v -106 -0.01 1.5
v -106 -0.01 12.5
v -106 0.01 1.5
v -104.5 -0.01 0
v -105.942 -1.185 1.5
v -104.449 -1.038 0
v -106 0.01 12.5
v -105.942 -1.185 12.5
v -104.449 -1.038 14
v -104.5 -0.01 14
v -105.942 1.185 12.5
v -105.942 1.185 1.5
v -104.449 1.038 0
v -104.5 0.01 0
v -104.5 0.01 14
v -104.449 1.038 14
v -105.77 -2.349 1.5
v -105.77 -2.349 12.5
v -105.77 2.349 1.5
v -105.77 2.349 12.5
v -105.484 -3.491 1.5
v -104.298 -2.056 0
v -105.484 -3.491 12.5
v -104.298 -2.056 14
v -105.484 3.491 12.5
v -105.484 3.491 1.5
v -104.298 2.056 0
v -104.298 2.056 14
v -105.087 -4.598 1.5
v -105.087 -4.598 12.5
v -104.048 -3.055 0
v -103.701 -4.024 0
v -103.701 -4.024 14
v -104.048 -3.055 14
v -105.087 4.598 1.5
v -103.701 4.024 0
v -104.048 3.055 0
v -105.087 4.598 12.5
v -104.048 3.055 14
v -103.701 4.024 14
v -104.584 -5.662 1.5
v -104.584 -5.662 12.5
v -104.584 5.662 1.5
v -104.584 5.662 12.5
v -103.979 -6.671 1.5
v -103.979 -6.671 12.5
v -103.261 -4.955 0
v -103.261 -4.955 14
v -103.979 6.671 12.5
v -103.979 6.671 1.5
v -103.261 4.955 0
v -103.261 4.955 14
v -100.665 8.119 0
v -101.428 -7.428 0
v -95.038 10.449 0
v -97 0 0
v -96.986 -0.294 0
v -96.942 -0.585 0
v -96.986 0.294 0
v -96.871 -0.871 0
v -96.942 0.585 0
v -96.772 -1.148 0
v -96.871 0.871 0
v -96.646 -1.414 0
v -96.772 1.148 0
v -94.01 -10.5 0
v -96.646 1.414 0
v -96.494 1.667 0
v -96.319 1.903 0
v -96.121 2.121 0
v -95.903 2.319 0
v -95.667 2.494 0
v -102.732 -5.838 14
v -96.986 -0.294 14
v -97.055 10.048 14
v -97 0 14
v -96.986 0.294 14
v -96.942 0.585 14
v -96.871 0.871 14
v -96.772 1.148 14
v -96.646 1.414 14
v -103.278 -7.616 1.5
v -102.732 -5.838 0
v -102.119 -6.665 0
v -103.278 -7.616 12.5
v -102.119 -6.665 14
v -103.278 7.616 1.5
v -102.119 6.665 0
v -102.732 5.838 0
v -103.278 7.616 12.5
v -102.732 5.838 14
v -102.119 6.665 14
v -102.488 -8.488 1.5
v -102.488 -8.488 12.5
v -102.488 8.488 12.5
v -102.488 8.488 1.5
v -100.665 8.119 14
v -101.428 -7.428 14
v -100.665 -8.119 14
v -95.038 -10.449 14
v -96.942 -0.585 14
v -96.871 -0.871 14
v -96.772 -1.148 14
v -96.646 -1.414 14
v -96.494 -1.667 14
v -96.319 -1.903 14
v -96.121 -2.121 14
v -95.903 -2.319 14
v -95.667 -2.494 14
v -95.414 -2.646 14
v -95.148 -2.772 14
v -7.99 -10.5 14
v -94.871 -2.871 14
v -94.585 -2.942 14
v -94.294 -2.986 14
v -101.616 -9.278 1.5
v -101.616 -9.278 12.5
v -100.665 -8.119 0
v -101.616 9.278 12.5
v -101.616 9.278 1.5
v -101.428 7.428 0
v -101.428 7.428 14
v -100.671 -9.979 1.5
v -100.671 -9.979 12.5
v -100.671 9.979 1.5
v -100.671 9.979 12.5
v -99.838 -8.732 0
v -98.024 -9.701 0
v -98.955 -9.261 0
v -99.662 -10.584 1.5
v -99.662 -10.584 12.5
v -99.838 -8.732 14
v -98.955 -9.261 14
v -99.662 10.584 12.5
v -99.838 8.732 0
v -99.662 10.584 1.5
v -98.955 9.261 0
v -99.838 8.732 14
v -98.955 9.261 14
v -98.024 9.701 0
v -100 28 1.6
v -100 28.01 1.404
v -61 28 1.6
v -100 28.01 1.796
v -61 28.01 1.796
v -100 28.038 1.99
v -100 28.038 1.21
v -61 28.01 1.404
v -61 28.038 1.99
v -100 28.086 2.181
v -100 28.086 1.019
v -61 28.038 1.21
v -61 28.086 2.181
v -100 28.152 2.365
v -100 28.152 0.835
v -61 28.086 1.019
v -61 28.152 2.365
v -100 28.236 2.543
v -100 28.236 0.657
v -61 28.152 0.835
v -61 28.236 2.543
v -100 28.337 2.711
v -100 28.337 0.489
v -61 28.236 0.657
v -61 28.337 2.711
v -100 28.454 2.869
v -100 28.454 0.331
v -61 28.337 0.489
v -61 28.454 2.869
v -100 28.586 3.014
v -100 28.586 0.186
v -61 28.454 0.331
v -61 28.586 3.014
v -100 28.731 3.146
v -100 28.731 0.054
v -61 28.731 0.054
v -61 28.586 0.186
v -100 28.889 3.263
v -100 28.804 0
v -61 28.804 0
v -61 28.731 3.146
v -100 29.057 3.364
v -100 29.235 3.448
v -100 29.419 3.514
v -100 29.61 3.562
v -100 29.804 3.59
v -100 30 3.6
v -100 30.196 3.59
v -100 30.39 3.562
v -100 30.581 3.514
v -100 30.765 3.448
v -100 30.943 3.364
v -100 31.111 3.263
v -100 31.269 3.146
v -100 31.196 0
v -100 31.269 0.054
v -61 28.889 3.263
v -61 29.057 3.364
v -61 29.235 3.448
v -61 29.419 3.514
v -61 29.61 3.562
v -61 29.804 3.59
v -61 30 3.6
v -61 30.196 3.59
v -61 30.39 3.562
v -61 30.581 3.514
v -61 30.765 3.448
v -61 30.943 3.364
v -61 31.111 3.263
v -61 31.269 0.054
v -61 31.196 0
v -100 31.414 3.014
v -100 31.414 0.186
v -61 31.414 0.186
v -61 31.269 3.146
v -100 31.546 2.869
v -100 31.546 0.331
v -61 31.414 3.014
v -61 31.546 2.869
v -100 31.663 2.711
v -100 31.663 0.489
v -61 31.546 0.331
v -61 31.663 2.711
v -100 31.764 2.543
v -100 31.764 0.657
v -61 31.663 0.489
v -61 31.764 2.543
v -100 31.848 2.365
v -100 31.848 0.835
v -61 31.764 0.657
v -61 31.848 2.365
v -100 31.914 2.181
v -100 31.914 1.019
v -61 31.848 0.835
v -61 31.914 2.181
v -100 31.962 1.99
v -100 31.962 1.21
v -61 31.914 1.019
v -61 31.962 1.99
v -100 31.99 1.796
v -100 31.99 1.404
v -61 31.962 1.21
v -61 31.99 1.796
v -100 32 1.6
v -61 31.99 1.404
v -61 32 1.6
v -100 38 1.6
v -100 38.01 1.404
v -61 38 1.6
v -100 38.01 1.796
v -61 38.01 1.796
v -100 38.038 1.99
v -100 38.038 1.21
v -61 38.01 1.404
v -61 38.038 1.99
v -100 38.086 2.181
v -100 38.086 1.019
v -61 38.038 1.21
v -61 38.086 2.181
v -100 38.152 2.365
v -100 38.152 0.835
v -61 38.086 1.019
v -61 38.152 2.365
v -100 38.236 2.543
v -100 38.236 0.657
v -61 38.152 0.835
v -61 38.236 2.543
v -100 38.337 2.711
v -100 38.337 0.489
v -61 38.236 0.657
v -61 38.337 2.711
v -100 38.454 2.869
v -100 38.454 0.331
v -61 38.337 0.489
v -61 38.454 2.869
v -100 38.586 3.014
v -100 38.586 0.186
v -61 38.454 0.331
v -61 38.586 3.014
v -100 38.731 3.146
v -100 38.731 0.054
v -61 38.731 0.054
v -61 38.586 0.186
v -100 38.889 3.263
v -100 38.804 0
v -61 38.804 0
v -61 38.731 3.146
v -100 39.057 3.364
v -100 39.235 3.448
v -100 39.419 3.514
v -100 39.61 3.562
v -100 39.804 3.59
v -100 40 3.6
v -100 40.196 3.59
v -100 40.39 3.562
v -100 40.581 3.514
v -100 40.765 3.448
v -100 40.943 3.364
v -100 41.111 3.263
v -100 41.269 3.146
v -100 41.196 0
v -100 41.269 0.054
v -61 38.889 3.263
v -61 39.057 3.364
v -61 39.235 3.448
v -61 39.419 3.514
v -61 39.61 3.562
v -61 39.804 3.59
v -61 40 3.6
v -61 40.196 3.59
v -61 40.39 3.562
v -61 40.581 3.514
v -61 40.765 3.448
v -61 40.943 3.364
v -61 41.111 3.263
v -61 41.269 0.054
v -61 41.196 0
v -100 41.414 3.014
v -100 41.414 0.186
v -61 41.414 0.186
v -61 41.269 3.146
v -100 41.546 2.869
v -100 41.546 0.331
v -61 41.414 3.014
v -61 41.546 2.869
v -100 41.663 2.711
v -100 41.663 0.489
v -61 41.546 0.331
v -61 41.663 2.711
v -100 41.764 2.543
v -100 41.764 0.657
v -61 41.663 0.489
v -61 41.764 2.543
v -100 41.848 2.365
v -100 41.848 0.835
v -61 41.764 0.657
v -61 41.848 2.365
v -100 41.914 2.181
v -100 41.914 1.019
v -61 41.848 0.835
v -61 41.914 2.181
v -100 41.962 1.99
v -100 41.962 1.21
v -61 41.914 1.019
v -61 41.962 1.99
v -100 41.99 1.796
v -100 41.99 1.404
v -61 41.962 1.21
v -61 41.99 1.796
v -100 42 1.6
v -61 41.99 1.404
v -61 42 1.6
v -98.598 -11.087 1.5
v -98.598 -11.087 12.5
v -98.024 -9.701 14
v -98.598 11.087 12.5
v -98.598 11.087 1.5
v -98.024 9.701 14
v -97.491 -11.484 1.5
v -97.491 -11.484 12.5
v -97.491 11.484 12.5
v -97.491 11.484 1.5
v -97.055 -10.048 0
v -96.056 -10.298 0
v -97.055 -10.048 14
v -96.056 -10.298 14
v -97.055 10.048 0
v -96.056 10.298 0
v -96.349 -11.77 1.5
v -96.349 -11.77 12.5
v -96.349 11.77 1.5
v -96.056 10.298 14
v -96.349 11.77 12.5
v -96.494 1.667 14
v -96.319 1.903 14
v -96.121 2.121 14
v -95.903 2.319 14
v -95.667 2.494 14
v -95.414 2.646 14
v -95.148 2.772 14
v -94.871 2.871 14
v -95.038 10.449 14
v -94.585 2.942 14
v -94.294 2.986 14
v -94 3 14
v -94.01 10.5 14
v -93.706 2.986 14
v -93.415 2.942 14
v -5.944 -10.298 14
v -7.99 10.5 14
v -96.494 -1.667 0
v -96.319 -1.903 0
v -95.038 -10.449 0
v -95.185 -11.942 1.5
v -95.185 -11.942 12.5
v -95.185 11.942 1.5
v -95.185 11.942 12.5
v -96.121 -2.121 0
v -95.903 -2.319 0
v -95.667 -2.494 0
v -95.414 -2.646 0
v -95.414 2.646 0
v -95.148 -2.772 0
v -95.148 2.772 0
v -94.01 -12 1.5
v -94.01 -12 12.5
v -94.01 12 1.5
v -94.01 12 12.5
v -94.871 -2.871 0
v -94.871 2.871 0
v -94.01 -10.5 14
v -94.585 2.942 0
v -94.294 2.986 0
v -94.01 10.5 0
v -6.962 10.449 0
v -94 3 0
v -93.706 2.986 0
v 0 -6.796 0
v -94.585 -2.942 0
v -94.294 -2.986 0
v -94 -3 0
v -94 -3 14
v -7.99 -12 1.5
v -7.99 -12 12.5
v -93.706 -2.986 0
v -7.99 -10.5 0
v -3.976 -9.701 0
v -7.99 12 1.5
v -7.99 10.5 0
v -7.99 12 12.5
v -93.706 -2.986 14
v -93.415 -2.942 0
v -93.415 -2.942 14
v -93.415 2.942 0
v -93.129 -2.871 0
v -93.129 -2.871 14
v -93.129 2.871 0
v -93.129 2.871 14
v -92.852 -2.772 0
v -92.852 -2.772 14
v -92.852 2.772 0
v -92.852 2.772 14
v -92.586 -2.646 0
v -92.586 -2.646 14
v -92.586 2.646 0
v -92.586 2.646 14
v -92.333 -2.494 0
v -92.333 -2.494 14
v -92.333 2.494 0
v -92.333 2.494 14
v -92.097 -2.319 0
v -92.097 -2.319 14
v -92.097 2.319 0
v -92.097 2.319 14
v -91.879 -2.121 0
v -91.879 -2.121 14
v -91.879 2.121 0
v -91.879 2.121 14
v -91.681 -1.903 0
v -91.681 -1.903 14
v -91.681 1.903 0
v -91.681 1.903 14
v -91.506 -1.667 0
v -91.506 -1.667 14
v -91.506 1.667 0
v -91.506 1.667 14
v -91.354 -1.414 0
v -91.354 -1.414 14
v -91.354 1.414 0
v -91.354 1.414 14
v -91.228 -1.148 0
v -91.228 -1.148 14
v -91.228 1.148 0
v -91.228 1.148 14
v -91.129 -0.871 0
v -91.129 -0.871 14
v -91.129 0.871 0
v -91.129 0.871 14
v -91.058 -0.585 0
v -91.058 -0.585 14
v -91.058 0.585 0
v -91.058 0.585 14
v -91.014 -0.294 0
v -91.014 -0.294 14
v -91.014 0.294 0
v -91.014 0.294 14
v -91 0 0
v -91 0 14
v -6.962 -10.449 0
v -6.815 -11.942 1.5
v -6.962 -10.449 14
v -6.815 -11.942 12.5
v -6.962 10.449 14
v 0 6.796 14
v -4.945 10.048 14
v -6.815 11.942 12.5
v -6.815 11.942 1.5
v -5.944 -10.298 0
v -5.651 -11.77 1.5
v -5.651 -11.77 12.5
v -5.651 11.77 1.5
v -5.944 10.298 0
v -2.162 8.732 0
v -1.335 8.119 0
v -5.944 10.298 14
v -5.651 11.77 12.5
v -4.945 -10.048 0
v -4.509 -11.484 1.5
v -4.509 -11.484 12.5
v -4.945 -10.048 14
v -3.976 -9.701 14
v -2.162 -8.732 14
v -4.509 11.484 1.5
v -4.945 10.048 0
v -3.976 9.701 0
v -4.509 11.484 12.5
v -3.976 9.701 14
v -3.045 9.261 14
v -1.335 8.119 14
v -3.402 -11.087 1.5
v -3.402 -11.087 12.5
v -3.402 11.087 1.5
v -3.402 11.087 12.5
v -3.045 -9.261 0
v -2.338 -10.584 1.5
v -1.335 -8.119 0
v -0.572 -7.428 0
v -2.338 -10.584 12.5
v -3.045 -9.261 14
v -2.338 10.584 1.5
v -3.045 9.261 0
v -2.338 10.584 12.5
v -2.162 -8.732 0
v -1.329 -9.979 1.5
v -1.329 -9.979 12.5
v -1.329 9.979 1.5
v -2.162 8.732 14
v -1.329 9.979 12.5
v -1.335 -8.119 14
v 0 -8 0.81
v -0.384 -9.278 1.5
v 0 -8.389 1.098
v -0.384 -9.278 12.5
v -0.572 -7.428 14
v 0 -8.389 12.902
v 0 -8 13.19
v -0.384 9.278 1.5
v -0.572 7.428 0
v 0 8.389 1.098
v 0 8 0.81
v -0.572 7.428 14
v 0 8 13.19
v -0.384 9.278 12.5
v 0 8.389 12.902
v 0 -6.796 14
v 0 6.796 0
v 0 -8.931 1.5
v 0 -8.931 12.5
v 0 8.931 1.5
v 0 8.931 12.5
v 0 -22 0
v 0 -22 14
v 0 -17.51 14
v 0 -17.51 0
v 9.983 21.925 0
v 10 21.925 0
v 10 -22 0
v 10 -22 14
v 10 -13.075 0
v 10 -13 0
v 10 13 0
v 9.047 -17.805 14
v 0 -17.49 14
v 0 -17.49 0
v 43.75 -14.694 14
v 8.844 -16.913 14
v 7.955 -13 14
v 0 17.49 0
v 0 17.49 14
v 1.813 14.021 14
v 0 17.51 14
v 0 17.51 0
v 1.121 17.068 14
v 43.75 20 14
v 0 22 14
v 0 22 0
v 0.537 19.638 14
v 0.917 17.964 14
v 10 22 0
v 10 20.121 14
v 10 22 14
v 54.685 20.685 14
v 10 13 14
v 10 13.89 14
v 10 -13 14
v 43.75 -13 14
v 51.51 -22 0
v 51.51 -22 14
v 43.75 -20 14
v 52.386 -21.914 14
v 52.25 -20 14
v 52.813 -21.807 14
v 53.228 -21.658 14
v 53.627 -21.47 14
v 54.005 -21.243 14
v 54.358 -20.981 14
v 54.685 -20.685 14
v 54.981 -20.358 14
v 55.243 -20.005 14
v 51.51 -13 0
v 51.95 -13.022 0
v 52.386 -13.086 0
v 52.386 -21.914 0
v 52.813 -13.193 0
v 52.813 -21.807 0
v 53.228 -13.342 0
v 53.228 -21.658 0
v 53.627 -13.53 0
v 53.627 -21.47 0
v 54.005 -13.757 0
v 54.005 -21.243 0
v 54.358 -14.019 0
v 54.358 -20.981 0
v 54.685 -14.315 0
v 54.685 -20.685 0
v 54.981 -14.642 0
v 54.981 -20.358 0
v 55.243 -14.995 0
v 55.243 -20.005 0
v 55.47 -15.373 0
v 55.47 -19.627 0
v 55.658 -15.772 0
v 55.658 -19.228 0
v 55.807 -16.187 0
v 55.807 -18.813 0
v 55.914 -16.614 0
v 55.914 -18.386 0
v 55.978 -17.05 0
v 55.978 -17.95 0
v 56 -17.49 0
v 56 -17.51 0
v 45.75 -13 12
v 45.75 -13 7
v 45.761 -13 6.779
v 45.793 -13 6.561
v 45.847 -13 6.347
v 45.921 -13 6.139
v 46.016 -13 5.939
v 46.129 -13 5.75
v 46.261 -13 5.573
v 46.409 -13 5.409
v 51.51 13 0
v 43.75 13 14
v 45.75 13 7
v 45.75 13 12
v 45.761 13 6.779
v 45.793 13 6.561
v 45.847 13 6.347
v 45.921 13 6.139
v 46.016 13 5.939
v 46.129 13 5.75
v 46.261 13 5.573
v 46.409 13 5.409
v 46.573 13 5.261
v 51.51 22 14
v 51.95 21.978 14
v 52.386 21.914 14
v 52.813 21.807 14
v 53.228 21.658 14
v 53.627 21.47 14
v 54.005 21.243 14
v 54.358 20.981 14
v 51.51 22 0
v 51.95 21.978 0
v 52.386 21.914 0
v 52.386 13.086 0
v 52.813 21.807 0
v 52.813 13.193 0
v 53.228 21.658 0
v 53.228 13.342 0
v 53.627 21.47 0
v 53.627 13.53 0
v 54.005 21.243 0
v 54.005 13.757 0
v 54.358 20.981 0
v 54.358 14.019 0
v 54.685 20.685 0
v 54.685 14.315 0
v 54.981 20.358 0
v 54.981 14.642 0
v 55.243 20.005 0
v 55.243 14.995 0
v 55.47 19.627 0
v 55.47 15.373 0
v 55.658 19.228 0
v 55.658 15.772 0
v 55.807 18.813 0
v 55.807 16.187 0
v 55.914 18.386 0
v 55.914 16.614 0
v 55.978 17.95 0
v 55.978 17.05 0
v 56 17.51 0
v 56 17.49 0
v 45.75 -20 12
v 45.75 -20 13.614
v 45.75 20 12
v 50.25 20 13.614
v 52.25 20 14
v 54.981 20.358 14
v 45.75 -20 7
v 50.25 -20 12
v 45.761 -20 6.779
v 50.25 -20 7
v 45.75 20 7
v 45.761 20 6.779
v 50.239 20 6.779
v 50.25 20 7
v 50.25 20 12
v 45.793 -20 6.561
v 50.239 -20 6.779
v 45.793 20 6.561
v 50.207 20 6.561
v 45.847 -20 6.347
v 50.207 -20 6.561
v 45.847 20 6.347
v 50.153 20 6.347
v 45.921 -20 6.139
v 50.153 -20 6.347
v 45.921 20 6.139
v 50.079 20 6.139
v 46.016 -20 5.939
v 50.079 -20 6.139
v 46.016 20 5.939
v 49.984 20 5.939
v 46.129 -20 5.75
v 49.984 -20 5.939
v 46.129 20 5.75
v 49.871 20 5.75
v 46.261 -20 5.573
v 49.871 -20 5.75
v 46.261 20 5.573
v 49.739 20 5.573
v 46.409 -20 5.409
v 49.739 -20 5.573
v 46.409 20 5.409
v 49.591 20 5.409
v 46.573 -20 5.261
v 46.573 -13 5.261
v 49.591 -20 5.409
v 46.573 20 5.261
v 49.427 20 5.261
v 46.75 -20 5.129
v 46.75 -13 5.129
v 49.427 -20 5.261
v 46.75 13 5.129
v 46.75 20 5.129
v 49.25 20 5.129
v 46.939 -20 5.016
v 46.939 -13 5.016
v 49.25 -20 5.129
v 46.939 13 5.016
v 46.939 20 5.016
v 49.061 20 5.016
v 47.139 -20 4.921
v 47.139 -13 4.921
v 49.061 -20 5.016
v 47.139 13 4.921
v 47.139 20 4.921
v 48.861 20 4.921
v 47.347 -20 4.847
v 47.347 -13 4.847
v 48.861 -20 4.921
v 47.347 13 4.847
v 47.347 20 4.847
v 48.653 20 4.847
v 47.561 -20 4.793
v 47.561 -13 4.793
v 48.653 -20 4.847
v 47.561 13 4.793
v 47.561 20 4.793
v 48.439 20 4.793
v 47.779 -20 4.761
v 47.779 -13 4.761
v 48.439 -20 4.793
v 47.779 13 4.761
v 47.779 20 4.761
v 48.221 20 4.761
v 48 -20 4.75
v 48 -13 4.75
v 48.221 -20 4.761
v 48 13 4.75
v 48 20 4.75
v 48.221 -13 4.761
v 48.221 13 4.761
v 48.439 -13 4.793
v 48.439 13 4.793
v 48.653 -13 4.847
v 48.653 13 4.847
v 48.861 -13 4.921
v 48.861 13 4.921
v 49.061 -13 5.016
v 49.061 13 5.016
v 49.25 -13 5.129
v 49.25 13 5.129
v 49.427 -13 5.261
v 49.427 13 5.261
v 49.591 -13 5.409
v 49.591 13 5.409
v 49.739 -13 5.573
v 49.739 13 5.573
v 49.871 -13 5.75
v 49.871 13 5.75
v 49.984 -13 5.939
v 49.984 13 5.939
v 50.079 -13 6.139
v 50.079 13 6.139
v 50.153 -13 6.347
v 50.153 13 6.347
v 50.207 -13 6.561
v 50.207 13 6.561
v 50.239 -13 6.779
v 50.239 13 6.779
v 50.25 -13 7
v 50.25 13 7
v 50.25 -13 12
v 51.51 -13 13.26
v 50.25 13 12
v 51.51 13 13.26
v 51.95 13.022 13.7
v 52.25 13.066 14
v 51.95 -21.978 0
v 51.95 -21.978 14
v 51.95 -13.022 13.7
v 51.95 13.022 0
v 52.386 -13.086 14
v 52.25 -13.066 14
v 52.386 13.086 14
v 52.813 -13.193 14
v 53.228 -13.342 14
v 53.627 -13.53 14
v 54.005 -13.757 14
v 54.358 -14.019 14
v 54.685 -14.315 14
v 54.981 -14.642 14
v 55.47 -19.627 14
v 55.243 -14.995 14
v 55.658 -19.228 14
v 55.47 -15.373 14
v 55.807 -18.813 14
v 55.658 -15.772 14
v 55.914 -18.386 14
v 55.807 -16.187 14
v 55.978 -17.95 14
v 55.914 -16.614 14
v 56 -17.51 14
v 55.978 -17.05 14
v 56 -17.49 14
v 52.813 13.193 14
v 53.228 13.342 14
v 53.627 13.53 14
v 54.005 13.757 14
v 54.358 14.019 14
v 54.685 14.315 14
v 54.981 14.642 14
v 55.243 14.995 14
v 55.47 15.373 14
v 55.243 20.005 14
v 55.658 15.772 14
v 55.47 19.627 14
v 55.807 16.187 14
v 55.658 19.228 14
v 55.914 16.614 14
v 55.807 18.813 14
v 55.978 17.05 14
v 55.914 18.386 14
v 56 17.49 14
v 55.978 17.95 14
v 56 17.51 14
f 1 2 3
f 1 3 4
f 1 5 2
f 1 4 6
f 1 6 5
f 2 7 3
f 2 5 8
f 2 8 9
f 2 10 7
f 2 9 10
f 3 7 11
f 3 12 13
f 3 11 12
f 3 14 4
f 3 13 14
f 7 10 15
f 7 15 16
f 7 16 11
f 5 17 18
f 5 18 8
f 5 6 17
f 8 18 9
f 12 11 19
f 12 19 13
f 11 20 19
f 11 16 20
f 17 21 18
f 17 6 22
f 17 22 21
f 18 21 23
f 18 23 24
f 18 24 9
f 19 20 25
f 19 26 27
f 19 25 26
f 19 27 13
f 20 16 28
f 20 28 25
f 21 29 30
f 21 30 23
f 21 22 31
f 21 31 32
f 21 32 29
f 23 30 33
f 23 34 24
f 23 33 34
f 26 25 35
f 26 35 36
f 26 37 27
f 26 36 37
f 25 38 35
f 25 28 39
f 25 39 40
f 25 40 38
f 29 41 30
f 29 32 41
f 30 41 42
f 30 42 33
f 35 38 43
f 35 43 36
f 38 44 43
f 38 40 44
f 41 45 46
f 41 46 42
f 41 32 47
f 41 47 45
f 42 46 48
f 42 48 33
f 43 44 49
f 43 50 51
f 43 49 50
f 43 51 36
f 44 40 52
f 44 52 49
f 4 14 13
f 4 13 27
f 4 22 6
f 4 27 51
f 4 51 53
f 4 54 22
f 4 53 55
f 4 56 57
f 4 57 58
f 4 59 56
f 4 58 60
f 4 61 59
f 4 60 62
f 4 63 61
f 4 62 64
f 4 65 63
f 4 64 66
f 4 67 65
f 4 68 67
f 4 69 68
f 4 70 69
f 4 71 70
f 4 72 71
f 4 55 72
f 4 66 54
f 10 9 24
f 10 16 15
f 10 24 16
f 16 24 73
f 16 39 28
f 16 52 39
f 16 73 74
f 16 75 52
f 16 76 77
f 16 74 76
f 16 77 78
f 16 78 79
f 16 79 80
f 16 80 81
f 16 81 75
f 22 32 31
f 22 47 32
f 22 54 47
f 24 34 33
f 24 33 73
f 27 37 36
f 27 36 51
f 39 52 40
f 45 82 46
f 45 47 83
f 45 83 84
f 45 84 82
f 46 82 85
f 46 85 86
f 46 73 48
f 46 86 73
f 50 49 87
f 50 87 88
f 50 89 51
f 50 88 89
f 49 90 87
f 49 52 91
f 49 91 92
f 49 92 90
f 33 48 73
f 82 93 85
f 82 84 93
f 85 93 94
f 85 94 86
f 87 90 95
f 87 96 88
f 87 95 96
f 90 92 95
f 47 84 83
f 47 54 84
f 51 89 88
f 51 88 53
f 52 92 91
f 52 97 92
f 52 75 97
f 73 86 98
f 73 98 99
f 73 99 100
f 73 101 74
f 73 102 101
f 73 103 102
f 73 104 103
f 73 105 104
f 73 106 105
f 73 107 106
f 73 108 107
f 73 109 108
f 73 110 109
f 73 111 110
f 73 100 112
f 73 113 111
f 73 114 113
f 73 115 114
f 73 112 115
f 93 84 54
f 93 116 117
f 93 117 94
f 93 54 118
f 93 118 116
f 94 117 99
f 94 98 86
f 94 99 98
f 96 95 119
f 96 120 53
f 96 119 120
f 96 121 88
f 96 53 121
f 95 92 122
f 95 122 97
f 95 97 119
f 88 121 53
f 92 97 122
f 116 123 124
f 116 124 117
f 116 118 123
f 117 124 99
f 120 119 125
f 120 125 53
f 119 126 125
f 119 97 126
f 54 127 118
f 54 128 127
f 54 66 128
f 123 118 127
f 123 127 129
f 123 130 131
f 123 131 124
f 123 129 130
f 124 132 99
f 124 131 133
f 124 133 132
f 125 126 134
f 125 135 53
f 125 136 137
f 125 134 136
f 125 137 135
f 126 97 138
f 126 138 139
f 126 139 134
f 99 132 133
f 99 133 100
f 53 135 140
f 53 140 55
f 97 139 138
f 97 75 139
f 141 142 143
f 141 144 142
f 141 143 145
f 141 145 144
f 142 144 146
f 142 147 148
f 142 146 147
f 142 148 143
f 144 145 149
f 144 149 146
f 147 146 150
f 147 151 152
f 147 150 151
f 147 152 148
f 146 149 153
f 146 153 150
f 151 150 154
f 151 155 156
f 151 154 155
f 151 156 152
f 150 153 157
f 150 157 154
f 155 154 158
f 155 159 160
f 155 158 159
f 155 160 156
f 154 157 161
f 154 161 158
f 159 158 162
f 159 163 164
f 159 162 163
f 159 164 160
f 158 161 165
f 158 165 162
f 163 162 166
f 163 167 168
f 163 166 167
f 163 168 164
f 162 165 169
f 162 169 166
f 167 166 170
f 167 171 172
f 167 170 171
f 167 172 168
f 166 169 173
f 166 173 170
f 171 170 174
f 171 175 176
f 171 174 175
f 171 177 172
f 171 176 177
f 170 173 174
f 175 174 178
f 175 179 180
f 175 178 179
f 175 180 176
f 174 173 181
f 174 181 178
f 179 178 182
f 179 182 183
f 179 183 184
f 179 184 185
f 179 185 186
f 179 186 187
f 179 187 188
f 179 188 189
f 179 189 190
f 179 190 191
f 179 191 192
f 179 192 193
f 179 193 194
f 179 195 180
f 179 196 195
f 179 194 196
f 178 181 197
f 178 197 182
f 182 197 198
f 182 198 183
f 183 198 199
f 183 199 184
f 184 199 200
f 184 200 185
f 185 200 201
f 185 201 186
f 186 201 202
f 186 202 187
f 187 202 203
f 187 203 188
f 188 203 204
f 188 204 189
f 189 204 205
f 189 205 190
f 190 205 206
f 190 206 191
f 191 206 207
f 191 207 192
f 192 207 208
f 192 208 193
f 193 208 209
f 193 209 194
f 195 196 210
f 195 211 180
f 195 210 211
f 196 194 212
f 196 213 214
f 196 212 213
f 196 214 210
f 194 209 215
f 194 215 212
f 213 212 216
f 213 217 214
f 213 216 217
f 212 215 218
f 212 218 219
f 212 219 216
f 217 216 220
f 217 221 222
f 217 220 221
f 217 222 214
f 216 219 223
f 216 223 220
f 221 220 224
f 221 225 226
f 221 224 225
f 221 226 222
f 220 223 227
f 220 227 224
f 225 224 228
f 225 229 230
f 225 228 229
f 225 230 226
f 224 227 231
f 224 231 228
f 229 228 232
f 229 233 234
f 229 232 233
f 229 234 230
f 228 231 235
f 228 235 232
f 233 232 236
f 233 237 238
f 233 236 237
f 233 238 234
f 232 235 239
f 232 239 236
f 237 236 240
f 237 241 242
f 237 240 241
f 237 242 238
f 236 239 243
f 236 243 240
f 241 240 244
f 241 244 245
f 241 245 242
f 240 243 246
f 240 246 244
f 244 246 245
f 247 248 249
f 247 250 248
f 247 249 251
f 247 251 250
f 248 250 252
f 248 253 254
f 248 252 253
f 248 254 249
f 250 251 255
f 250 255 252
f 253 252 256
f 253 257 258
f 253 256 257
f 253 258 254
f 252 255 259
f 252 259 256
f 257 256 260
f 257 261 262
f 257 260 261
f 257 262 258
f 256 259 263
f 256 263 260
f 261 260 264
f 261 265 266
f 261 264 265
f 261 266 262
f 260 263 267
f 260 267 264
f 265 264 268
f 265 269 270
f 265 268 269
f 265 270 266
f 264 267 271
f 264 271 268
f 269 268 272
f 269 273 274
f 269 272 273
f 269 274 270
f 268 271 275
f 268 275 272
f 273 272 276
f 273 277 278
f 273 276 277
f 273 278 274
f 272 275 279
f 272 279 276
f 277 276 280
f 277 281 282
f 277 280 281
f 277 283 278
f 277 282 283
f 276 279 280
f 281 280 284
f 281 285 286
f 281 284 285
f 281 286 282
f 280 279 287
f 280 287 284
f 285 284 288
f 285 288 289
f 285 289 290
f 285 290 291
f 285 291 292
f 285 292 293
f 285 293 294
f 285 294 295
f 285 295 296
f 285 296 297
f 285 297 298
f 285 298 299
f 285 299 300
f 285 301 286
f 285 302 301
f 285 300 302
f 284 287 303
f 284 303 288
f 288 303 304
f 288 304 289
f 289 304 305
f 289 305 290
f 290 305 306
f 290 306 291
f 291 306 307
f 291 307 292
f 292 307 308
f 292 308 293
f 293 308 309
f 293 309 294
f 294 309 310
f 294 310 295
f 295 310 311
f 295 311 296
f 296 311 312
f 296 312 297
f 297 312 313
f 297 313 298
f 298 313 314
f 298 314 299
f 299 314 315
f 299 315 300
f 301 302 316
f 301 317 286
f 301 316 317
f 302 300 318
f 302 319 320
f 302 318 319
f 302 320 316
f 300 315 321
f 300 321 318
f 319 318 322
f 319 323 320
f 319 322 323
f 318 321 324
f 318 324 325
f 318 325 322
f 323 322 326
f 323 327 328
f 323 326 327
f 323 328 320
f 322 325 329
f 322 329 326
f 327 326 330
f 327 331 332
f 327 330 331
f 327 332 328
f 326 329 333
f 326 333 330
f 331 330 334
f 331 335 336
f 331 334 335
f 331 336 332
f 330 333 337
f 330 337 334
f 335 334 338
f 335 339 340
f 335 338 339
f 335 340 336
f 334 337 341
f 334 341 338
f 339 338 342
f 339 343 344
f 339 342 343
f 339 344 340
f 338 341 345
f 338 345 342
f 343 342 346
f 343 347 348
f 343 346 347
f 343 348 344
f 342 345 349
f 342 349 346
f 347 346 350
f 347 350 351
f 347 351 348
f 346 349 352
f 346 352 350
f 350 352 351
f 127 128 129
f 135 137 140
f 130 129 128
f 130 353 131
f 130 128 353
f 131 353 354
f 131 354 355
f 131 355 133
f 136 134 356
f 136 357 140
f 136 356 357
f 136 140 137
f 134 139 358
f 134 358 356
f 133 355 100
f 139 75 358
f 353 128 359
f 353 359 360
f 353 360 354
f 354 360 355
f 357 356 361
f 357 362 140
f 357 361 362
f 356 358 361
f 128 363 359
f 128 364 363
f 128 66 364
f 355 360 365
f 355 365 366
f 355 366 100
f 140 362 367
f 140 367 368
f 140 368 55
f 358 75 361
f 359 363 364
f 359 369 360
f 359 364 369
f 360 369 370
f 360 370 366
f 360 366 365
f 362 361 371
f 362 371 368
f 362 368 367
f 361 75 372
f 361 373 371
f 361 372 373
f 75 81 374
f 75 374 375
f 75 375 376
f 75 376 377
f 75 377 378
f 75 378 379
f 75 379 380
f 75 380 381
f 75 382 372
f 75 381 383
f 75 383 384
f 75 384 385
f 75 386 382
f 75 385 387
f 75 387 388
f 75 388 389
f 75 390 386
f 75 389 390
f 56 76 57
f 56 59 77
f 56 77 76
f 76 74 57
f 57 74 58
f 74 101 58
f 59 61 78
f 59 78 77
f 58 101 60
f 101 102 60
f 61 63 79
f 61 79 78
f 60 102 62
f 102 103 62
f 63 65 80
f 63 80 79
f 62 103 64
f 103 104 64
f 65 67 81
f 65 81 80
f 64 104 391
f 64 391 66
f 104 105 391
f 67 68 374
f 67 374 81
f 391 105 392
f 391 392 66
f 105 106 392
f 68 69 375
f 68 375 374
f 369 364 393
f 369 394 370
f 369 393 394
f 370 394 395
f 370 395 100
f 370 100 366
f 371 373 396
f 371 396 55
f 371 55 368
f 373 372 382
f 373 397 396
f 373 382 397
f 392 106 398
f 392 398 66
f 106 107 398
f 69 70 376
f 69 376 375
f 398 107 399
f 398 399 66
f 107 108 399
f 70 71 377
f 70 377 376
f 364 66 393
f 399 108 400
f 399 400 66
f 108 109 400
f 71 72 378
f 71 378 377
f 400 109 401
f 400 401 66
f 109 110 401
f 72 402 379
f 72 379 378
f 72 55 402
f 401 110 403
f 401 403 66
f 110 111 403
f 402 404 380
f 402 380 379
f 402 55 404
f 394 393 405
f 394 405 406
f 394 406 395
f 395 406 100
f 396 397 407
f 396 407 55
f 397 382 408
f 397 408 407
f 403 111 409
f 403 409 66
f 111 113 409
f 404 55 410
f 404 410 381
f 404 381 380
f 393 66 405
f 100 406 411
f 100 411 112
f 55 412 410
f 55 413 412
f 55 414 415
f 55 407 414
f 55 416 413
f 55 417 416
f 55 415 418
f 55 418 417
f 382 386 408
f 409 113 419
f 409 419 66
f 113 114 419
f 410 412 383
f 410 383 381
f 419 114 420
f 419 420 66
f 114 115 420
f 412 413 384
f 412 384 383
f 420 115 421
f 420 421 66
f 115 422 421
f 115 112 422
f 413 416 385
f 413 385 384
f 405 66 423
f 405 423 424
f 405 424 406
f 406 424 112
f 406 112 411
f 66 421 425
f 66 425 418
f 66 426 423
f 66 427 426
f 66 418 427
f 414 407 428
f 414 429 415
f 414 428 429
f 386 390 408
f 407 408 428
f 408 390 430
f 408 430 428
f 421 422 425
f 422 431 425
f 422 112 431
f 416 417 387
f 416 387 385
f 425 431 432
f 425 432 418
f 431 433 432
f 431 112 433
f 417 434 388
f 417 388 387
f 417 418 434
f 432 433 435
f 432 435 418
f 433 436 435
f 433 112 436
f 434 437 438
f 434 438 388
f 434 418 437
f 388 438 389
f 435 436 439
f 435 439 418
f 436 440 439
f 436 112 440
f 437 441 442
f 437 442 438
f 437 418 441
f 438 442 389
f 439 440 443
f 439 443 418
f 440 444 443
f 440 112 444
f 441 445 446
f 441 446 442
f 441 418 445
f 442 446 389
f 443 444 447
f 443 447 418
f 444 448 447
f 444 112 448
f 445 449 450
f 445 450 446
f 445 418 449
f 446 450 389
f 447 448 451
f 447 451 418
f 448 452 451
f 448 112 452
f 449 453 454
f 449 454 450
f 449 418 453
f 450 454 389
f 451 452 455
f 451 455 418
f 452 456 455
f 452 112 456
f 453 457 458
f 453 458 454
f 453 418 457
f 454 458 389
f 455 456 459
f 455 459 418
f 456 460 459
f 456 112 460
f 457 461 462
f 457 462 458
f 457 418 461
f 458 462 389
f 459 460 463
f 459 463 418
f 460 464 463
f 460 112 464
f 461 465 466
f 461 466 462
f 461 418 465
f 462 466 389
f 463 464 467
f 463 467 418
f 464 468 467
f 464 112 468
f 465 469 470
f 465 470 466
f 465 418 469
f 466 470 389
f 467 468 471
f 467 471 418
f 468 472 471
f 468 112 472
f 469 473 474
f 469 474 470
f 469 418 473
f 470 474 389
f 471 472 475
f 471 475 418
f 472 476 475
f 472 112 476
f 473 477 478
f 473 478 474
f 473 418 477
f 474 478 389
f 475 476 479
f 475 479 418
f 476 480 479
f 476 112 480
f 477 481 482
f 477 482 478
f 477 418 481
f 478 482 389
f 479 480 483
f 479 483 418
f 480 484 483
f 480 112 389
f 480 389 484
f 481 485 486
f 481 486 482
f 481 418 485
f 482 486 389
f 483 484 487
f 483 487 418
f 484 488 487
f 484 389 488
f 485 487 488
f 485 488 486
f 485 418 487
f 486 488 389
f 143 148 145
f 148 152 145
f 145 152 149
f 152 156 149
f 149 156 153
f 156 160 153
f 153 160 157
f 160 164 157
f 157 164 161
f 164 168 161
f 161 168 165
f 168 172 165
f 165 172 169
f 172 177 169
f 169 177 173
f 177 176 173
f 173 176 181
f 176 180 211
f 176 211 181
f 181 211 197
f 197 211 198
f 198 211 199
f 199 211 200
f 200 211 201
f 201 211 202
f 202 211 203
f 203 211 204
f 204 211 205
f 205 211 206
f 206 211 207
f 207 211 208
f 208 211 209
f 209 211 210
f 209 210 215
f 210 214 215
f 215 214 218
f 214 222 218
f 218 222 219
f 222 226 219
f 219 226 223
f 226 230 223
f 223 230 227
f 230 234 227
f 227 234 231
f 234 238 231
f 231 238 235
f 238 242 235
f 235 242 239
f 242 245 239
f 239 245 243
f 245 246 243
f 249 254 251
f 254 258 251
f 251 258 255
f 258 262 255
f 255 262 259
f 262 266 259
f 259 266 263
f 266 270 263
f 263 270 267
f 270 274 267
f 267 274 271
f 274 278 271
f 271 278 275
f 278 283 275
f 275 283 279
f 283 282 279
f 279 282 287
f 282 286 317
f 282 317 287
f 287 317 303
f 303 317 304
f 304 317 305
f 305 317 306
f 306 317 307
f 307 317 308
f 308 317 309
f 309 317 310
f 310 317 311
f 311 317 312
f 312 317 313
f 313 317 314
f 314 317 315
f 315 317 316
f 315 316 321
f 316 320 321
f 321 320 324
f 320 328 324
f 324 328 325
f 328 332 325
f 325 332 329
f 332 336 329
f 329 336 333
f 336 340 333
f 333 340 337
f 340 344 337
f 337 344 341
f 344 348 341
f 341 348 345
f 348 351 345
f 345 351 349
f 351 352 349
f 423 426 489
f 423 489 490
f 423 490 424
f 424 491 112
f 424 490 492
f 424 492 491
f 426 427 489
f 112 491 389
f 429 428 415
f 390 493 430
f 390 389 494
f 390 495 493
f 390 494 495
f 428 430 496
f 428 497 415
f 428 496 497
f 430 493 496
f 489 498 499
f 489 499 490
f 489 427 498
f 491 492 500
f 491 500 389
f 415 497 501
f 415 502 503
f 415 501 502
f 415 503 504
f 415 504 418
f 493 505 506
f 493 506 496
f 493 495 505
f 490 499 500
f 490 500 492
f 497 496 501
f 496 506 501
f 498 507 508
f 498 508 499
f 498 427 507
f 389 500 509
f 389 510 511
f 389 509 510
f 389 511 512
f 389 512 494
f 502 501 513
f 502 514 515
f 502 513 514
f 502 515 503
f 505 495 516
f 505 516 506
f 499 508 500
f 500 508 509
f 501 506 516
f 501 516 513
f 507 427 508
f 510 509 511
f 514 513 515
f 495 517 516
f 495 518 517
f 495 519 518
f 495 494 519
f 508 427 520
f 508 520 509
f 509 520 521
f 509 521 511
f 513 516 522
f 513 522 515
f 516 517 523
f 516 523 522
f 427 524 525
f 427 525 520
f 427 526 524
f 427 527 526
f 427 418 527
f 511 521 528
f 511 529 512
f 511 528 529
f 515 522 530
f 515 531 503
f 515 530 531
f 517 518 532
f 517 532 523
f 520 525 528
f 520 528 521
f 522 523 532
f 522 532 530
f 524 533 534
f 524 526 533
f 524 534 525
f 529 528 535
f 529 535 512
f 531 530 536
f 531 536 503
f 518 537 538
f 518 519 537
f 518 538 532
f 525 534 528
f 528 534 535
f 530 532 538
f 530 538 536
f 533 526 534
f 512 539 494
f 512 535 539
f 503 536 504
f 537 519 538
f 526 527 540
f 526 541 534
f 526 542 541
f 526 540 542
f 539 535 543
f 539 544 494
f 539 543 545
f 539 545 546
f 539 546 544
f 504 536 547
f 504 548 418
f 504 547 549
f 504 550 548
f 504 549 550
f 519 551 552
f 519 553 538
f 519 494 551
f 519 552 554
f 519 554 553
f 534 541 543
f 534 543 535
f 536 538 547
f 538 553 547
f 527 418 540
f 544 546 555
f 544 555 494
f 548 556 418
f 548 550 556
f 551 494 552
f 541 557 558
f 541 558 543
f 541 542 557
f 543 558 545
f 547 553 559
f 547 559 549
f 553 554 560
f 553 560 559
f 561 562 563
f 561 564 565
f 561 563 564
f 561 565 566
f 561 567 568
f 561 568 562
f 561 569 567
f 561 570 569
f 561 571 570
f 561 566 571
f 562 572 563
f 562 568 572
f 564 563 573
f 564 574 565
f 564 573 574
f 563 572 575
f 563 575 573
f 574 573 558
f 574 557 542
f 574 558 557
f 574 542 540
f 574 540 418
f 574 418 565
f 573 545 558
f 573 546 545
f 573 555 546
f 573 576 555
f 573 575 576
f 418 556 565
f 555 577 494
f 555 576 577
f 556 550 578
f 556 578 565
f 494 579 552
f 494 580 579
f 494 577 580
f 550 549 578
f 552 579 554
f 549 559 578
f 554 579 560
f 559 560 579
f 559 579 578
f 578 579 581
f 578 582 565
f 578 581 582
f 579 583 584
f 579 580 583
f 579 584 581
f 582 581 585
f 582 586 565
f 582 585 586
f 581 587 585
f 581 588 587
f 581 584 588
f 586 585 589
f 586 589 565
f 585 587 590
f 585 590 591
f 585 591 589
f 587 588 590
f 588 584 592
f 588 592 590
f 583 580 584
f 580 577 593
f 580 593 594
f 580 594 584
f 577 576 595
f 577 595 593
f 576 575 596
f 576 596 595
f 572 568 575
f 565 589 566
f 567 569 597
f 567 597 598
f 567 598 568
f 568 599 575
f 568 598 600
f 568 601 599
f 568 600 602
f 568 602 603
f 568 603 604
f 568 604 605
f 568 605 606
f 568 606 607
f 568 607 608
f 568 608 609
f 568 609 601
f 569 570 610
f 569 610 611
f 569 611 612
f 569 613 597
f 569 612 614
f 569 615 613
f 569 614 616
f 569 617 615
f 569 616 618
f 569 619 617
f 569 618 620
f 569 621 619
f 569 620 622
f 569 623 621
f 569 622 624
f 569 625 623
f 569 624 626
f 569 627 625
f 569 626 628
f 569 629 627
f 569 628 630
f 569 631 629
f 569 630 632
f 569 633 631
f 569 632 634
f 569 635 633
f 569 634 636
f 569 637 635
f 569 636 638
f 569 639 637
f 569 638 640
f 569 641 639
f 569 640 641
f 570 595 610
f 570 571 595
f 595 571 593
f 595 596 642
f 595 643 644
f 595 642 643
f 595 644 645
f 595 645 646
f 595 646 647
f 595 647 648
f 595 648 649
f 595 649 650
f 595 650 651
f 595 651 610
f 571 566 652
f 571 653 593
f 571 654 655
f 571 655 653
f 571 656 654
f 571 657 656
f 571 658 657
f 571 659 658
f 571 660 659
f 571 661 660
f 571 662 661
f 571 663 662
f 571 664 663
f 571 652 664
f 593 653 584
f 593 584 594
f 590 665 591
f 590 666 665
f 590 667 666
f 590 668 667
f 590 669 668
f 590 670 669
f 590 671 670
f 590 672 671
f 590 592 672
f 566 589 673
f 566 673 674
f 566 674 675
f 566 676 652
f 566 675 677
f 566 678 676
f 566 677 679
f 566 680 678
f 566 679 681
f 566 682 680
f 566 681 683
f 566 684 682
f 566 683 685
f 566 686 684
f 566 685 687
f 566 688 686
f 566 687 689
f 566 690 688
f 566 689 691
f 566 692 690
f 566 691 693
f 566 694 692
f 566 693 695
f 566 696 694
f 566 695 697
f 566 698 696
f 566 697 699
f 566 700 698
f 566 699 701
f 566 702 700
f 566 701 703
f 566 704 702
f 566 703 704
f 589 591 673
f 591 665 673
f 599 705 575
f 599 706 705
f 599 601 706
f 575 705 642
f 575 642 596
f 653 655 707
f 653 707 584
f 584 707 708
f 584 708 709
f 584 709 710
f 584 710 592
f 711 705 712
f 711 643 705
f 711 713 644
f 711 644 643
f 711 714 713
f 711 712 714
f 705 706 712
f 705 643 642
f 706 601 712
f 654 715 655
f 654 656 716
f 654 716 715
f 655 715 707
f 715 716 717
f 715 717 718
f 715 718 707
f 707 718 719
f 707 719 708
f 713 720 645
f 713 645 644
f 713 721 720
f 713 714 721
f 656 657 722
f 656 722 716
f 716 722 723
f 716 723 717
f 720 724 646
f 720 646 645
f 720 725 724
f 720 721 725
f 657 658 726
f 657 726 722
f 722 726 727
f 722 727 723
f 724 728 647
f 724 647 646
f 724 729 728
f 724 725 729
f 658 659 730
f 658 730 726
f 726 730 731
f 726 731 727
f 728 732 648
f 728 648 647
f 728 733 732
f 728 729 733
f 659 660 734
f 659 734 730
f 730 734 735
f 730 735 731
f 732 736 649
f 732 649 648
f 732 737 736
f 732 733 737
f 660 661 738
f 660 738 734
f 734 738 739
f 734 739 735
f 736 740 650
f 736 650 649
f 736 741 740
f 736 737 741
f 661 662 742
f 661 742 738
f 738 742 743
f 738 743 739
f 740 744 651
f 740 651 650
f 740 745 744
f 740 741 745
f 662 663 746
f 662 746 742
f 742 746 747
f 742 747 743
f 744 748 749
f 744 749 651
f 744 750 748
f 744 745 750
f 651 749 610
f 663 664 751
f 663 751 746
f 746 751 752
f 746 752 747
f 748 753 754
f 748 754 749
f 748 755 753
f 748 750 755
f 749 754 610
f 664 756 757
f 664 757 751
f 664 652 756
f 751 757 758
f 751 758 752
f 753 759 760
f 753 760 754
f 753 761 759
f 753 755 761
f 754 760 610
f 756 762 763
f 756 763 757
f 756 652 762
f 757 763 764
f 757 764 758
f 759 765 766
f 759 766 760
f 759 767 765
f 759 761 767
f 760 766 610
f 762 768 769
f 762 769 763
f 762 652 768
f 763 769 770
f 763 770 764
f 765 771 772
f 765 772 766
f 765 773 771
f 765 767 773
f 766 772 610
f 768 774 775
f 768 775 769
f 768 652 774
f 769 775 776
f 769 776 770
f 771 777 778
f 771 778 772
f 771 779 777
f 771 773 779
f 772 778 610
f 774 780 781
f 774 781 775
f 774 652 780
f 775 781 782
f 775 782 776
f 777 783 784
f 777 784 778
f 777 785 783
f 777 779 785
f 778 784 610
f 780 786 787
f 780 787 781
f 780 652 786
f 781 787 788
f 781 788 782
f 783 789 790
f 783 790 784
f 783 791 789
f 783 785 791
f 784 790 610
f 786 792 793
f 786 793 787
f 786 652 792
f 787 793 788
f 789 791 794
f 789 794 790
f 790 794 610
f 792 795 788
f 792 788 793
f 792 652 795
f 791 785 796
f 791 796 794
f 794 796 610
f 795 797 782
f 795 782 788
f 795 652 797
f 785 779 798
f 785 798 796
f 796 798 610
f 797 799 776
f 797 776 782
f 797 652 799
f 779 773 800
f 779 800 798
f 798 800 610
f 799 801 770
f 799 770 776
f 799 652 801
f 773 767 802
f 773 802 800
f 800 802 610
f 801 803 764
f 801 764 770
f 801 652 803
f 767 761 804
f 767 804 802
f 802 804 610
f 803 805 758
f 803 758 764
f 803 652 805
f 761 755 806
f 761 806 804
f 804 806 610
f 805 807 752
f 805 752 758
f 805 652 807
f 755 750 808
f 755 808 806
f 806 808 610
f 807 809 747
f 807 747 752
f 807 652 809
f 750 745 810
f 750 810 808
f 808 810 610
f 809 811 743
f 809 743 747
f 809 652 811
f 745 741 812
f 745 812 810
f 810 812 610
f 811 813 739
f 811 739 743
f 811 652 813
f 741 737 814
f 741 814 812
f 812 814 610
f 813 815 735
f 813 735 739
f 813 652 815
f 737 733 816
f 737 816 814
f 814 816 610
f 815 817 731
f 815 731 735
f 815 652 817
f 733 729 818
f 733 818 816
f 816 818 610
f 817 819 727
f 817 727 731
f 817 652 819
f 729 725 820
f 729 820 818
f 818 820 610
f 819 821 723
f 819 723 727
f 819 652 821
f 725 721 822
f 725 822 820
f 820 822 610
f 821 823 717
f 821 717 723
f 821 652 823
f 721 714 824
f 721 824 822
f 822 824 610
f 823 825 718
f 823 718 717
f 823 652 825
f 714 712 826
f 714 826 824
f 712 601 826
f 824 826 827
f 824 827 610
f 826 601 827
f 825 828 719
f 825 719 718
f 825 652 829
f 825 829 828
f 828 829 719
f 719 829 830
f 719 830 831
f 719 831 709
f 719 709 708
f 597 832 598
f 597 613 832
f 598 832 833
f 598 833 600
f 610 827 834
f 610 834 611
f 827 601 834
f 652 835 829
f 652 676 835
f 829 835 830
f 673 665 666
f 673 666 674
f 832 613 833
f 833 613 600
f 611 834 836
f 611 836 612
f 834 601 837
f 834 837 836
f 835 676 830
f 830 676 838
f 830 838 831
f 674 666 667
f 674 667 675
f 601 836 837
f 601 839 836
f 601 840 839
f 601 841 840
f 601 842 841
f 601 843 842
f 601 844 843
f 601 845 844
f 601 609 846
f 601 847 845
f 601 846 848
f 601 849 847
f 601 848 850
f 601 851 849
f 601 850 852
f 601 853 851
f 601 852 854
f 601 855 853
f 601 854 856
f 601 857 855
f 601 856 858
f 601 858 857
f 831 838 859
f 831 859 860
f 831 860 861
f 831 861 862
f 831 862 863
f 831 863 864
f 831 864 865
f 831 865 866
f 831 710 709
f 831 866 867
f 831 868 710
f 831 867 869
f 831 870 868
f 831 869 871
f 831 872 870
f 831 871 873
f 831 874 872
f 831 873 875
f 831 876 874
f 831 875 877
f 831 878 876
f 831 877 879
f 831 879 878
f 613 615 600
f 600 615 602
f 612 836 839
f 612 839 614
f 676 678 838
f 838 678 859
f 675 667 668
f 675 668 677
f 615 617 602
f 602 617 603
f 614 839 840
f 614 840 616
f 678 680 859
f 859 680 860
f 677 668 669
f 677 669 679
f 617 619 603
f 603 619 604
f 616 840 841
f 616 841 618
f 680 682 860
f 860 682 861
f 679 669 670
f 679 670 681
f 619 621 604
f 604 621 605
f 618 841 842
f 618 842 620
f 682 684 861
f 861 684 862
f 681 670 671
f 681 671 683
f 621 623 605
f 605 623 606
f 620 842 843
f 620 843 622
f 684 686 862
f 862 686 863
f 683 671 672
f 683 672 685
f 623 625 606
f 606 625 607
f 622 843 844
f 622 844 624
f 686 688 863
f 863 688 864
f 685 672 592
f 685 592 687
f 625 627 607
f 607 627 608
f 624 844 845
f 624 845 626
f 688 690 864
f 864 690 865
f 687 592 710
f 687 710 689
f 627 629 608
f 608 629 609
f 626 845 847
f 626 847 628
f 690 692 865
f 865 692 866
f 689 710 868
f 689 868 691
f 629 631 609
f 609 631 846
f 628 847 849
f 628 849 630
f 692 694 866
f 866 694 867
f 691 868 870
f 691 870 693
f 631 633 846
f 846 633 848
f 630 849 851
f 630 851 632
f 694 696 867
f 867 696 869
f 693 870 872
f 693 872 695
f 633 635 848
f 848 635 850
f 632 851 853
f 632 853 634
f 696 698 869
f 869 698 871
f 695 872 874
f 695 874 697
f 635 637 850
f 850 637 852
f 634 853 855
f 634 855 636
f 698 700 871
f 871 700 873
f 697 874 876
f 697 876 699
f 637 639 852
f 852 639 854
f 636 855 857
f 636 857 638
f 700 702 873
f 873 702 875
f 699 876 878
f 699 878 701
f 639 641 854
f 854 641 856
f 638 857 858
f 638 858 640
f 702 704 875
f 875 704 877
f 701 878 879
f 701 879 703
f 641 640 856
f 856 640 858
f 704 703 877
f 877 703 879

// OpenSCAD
// =====================================================================
//  P11 · A8 — Situation déclenchante : support à main en fourche
//  R.Blanchard, professeur de Technologie
//
//  La fourche tient l'axe de la turbine sous le jet du robinet.
//  Encoches ouvertes vers le haut et fermées côté extérieur : l'axe se pose,
//  ne glisse pas sur le côté, et l'on échange A et B (chacune sur son axe)
//  en 5 secondes. Paliers lisses : la turbine tourne sur son axe.
//  Le même support sert pour A et B.
//
//  Export : openscad --backend=manifold -o support_demo.stl support_demo.scad
//  Impression à plat, telle qu'elle est utilisée, SANS support.
// =====================================================================

/* [Accord avec turbine_demo.scad] */
diametre_turbine = 60;
hauteur_turbine  = 20;
diametre_axe     = 4;      // même valeur que dans turbine_demo.scad
jeu_encoche      = 0.5;    // jeu de l'axe dans l'encoche

/* [Fourche] */
jeu_lateral      = 3;      // jeu de chaque côté de la turbine, entre les bras
largeur_bras     = 9;      // épaisseur d'un bras (direction de l'axe)
paroi_ext        = 2;      // fond de l'encoche, côté extérieur : bloque l'axe
hauteur          = 14;     // hauteur de la fourche (épaisseur d'impression)
z_axe            = 7;      // hauteur du centre de l'axe
garde            = 8;      // distance entre le bord de la turbine et la traverse
traverse         = 10;

/* [Poignée] */
long_poignee     = 110;
larg_poignee     = 24;
trou_accroche    = 6;      // trou pour suspendre le support (0 = aucun)

/* [Axes imprimés (facultatif)] */
imprimer_axes    = true;   // deux axes en PLA, un par turbine (sinon : tige M4, rond de 4...)

$fn = 64;

// ---------- grandeurs dérivées ----------
ecart   = hauteur_turbine + 2*jeu_lateral;           // écart intérieur entre les bras
Y_tot   = ecart + 2*largeur_bras;
x_axe   = traverse + diametre_turbine/2 + garde;     // position de l'axe depuis le dos de la traverse
L_bras  = x_axe + 8;                                 // le bras dépasse l'axe de 8 mm
l_encoche = diametre_axe + jeu_encoche;
L_axe   = ecart + 2*(largeur_bras - paroi_ext) - 1;  // longueur d'axe à couper ou à imprimer

echo(str("Longueur d'axe à prévoir : ", L_axe, " mm (diamètre ", diametre_axe, " mm), une par turbine"));
assert(z_axe + diametre_axe/2 < hauteur, "axe trop haut");

module arrondi2d(l, w, r) { offset(r) offset(-r) square([l, w]); }

module poignee() {
    // chanfrein de 1,5 mm sur les arêtes : enveloppe de deux plaques
    hull() {
        translate([0, 0, 1.5]) linear_extrude(hauteur - 3) arrondi2d(long_poignee, larg_poignee, larg_poignee/2 - 0.01);
        translate([1.5, 1.5, 0]) linear_extrude(hauteur) arrondi2d(long_poignee - 3, larg_poignee - 3, larg_poignee/2 - 1.51);
    }
}

module fourche() {
    difference() {
        union() {
            // traverse + deux bras (U)
            translate([0, -Y_tot/2, 0]) cube([traverse, Y_tot, hauteur]);
            for (s = [-1, 1])
                translate([0, s > 0 ? ecart/2 : -ecart/2 - largeur_bras, 0])
                    linear_extrude(hauteur) arrondi2d(L_bras, largeur_bras, largeur_bras/2 - 0.01);
            // poignée, dans l'axe, derrière la traverse
            translate([-long_poignee + 4, -larg_poignee/2, 0]) poignee();
        }
        // encoches : ouvertes vers le haut, fermées côté extérieur
        for (s = [-1, 1]) {
            y0 = s > 0 ? ecart/2 - 1 : -ecart/2 - largeur_bras + paroi_ext;
            translate([x_axe, y0, z_axe]) {
                rotate([-90, 0, 0]) cylinder(d = l_encoche, h = largeur_bras - paroi_ext + 1);
                translate([-l_encoche/2, 0, 0]) cube([l_encoche, largeur_bras - paroi_ext + 1, hauteur]);
                // entrée évasée pour poser l'axe à l'aveugle
                translate([0, 0, hauteur - z_axe - 2])
                    hull() {
                        translate([-l_encoche/2, 0, 0]) cube([l_encoche, largeur_bras - paroi_ext + 1, 0.01]);
                        translate([-l_encoche/2 - 2.5, 0, 2.5]) cube([l_encoche + 5, largeur_bras - paroi_ext + 1, 0.01]);
                    }
            }
        }
        // trou d'accroche au bout de la poignée
        if (trou_accroche > 0)
            translate([-long_poignee + 4 + larg_poignee/2, 0, -1]) cylinder(d = trou_accroche, h = hauteur + 2);
    }
}

module axe_imprime() {   // couché, avec un méplat de 0,4 mm pour tenir sur le plateau
    difference() {
        translate([0, 0, diametre_axe/2 - 0.4]) rotate([0, 90, 0]) cylinder(d = diametre_axe, h = L_axe);
        translate([-1, -diametre_axe, -diametre_axe]) cube([L_axe + 2, 2*diametre_axe, diametre_axe]);
    }
}

fourche();
if (imprimer_axes)
    for (k = [0, 1]) translate([-long_poignee + 10, Y_tot/2 + 8 + k*(diametre_axe + 6), 0]) axe_imprime();
